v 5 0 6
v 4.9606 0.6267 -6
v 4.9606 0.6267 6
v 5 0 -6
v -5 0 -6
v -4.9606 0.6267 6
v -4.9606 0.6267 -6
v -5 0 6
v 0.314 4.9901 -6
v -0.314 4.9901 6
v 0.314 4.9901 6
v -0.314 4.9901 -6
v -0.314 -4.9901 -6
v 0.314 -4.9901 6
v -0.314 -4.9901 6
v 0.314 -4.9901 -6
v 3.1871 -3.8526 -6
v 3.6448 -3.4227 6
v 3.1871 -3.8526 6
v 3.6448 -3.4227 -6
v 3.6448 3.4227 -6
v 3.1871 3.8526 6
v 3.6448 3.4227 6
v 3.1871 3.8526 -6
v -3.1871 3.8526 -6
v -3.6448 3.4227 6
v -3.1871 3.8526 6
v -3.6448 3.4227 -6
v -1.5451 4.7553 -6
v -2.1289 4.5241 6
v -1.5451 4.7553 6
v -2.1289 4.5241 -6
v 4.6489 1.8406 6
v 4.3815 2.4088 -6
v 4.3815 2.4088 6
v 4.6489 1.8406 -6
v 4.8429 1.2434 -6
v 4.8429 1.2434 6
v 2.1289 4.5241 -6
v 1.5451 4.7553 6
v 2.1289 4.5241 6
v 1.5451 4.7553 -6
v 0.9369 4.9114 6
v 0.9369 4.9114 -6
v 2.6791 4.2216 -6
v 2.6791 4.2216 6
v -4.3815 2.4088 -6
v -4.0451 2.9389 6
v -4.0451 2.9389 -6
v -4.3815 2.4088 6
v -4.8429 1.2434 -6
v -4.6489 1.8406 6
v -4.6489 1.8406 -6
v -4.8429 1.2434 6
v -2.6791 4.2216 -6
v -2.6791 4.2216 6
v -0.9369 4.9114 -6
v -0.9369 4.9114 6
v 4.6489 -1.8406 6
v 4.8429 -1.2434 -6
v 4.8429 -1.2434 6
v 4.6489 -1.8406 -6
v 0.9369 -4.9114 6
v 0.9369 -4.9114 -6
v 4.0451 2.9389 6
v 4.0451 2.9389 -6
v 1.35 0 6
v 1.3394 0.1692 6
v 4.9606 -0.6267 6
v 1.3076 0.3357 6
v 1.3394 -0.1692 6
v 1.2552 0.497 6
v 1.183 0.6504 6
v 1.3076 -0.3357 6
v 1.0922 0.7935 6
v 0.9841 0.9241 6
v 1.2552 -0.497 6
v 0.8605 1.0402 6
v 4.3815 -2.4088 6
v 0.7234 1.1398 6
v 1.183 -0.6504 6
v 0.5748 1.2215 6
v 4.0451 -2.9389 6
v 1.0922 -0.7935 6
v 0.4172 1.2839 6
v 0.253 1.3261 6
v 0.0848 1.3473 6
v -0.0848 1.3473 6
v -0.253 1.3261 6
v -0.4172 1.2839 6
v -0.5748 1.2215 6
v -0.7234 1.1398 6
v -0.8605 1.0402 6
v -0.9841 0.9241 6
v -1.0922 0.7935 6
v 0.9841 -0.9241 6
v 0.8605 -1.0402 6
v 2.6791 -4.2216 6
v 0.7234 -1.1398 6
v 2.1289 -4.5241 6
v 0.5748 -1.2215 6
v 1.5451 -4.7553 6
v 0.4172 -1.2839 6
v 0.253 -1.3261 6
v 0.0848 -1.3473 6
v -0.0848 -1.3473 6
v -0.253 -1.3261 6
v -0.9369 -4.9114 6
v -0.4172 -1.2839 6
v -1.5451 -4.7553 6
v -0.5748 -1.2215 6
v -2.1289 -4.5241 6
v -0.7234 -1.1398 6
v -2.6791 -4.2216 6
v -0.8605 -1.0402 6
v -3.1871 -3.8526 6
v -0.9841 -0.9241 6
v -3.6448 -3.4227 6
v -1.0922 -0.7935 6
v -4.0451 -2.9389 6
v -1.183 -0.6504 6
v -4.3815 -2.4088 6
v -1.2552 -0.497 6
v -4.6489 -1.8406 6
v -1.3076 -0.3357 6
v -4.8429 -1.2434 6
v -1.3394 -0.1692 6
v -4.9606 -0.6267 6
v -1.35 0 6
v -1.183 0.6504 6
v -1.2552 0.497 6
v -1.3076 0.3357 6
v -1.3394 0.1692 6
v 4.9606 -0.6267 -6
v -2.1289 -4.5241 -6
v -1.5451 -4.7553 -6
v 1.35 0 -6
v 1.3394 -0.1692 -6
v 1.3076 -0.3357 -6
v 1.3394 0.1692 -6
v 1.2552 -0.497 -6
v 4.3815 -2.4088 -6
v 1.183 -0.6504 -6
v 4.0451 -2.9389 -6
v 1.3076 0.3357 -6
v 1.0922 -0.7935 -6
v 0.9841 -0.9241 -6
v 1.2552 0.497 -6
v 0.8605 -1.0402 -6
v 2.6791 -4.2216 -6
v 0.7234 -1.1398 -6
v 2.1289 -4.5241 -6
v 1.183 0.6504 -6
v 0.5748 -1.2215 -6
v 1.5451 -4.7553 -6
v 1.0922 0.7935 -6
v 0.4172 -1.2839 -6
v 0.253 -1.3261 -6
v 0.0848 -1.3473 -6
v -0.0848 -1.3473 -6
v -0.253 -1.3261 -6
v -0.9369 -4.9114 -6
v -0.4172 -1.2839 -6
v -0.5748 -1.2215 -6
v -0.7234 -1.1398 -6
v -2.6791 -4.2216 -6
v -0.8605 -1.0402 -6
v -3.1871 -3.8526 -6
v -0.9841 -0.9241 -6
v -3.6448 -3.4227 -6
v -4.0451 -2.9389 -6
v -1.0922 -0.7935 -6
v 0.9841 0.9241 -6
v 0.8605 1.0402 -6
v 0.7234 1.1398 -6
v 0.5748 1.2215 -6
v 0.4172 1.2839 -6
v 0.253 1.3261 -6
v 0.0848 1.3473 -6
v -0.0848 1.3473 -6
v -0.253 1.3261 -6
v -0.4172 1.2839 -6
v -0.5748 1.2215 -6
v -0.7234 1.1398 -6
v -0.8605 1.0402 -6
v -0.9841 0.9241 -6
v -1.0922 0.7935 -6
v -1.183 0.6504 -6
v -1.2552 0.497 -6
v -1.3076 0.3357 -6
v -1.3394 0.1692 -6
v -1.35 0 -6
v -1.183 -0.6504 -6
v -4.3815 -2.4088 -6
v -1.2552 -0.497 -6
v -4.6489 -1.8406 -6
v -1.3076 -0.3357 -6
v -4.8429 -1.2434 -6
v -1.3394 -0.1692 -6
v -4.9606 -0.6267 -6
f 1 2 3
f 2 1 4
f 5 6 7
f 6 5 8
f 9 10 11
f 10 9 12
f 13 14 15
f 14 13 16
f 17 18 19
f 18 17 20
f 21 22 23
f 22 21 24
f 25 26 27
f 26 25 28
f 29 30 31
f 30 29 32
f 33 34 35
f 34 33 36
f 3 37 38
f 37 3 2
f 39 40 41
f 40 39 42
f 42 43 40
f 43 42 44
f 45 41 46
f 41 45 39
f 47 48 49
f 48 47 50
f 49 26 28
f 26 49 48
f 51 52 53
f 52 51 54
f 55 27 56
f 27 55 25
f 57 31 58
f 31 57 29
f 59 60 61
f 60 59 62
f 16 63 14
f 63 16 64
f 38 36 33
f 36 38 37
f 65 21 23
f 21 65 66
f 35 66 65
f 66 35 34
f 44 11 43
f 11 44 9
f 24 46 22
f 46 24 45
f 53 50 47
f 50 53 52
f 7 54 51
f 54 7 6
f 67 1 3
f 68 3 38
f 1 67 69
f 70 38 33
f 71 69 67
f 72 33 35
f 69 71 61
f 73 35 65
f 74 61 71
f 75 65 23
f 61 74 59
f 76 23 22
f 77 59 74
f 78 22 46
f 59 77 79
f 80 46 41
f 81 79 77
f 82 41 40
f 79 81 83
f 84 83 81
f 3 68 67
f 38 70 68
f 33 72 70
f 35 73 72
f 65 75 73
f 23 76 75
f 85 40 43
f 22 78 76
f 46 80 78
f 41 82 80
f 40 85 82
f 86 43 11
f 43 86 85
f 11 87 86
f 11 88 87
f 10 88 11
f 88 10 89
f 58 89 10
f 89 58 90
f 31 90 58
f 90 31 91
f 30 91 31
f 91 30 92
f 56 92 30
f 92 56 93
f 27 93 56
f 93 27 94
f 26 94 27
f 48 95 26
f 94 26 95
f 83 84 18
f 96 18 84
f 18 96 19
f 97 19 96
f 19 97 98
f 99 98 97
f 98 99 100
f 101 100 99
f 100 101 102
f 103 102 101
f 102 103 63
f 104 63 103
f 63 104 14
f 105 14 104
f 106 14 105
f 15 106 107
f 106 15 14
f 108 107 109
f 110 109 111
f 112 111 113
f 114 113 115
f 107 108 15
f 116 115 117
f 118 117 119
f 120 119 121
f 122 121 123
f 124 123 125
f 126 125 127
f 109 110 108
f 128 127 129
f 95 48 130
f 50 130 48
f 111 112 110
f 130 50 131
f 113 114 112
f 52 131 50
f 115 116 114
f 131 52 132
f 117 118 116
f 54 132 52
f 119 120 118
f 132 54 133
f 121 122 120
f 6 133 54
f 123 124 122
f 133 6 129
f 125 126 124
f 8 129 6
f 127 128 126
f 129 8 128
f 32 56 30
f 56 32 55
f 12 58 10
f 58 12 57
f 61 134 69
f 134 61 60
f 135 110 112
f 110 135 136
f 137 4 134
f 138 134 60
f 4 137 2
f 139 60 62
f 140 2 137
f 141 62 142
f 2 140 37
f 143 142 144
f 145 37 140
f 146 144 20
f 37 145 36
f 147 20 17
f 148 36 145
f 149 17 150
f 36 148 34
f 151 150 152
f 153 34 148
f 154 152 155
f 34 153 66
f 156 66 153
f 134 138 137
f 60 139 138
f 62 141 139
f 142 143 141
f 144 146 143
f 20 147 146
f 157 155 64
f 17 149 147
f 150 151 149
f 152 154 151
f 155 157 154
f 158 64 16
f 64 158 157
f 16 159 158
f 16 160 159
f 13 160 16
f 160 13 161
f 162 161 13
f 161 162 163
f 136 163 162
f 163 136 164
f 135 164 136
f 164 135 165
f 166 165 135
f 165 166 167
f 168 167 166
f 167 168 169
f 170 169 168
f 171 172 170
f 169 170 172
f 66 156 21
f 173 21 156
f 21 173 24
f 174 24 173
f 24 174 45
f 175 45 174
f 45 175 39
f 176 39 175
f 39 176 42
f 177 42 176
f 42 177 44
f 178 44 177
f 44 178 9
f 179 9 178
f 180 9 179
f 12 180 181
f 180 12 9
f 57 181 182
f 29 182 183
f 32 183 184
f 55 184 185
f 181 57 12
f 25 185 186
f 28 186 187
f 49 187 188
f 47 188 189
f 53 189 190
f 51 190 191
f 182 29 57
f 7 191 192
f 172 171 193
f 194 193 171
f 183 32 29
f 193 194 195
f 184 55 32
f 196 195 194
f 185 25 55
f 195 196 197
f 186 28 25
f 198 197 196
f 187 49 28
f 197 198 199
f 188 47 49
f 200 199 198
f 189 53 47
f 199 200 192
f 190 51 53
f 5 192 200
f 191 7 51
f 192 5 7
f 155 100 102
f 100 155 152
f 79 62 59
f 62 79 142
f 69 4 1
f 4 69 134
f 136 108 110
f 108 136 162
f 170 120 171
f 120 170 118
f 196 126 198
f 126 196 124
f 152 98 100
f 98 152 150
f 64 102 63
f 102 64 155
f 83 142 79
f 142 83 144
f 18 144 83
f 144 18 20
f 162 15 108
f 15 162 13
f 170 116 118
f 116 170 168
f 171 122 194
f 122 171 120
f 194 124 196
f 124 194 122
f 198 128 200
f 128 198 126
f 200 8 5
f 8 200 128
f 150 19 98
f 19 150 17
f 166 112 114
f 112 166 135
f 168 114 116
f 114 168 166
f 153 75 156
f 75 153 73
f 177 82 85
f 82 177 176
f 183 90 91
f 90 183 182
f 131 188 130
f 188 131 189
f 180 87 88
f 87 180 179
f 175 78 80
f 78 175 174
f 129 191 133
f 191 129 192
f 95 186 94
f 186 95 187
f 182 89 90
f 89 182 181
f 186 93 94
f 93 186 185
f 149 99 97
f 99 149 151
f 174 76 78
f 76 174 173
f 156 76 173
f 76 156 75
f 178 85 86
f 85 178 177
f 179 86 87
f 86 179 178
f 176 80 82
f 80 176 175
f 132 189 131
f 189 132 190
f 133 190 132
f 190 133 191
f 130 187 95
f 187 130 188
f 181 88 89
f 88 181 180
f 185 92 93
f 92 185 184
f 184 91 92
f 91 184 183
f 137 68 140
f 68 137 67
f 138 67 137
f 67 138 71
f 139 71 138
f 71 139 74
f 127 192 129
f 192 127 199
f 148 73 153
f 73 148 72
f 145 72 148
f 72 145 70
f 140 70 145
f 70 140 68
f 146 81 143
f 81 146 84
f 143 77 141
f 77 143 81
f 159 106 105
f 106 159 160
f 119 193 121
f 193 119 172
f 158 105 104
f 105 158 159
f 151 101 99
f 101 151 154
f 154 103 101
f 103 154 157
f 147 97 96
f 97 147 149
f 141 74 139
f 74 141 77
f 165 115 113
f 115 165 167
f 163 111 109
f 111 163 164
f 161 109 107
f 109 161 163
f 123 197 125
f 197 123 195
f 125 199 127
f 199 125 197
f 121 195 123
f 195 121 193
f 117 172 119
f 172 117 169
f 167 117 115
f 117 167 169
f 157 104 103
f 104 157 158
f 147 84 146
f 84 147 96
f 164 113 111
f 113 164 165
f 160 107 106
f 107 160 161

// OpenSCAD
$fn = 50;


difference() {
	union() {
		translate(v = [0, 0, -6.0000000000]) {
			cylinder(h = 12, r = 5.0000000000);
		}
	}
	union() {
		translate(v = [0, 0, -100.0000000000]) {
			cylinder(h = 200, r = 1.3500000000);
		}
	}
}
